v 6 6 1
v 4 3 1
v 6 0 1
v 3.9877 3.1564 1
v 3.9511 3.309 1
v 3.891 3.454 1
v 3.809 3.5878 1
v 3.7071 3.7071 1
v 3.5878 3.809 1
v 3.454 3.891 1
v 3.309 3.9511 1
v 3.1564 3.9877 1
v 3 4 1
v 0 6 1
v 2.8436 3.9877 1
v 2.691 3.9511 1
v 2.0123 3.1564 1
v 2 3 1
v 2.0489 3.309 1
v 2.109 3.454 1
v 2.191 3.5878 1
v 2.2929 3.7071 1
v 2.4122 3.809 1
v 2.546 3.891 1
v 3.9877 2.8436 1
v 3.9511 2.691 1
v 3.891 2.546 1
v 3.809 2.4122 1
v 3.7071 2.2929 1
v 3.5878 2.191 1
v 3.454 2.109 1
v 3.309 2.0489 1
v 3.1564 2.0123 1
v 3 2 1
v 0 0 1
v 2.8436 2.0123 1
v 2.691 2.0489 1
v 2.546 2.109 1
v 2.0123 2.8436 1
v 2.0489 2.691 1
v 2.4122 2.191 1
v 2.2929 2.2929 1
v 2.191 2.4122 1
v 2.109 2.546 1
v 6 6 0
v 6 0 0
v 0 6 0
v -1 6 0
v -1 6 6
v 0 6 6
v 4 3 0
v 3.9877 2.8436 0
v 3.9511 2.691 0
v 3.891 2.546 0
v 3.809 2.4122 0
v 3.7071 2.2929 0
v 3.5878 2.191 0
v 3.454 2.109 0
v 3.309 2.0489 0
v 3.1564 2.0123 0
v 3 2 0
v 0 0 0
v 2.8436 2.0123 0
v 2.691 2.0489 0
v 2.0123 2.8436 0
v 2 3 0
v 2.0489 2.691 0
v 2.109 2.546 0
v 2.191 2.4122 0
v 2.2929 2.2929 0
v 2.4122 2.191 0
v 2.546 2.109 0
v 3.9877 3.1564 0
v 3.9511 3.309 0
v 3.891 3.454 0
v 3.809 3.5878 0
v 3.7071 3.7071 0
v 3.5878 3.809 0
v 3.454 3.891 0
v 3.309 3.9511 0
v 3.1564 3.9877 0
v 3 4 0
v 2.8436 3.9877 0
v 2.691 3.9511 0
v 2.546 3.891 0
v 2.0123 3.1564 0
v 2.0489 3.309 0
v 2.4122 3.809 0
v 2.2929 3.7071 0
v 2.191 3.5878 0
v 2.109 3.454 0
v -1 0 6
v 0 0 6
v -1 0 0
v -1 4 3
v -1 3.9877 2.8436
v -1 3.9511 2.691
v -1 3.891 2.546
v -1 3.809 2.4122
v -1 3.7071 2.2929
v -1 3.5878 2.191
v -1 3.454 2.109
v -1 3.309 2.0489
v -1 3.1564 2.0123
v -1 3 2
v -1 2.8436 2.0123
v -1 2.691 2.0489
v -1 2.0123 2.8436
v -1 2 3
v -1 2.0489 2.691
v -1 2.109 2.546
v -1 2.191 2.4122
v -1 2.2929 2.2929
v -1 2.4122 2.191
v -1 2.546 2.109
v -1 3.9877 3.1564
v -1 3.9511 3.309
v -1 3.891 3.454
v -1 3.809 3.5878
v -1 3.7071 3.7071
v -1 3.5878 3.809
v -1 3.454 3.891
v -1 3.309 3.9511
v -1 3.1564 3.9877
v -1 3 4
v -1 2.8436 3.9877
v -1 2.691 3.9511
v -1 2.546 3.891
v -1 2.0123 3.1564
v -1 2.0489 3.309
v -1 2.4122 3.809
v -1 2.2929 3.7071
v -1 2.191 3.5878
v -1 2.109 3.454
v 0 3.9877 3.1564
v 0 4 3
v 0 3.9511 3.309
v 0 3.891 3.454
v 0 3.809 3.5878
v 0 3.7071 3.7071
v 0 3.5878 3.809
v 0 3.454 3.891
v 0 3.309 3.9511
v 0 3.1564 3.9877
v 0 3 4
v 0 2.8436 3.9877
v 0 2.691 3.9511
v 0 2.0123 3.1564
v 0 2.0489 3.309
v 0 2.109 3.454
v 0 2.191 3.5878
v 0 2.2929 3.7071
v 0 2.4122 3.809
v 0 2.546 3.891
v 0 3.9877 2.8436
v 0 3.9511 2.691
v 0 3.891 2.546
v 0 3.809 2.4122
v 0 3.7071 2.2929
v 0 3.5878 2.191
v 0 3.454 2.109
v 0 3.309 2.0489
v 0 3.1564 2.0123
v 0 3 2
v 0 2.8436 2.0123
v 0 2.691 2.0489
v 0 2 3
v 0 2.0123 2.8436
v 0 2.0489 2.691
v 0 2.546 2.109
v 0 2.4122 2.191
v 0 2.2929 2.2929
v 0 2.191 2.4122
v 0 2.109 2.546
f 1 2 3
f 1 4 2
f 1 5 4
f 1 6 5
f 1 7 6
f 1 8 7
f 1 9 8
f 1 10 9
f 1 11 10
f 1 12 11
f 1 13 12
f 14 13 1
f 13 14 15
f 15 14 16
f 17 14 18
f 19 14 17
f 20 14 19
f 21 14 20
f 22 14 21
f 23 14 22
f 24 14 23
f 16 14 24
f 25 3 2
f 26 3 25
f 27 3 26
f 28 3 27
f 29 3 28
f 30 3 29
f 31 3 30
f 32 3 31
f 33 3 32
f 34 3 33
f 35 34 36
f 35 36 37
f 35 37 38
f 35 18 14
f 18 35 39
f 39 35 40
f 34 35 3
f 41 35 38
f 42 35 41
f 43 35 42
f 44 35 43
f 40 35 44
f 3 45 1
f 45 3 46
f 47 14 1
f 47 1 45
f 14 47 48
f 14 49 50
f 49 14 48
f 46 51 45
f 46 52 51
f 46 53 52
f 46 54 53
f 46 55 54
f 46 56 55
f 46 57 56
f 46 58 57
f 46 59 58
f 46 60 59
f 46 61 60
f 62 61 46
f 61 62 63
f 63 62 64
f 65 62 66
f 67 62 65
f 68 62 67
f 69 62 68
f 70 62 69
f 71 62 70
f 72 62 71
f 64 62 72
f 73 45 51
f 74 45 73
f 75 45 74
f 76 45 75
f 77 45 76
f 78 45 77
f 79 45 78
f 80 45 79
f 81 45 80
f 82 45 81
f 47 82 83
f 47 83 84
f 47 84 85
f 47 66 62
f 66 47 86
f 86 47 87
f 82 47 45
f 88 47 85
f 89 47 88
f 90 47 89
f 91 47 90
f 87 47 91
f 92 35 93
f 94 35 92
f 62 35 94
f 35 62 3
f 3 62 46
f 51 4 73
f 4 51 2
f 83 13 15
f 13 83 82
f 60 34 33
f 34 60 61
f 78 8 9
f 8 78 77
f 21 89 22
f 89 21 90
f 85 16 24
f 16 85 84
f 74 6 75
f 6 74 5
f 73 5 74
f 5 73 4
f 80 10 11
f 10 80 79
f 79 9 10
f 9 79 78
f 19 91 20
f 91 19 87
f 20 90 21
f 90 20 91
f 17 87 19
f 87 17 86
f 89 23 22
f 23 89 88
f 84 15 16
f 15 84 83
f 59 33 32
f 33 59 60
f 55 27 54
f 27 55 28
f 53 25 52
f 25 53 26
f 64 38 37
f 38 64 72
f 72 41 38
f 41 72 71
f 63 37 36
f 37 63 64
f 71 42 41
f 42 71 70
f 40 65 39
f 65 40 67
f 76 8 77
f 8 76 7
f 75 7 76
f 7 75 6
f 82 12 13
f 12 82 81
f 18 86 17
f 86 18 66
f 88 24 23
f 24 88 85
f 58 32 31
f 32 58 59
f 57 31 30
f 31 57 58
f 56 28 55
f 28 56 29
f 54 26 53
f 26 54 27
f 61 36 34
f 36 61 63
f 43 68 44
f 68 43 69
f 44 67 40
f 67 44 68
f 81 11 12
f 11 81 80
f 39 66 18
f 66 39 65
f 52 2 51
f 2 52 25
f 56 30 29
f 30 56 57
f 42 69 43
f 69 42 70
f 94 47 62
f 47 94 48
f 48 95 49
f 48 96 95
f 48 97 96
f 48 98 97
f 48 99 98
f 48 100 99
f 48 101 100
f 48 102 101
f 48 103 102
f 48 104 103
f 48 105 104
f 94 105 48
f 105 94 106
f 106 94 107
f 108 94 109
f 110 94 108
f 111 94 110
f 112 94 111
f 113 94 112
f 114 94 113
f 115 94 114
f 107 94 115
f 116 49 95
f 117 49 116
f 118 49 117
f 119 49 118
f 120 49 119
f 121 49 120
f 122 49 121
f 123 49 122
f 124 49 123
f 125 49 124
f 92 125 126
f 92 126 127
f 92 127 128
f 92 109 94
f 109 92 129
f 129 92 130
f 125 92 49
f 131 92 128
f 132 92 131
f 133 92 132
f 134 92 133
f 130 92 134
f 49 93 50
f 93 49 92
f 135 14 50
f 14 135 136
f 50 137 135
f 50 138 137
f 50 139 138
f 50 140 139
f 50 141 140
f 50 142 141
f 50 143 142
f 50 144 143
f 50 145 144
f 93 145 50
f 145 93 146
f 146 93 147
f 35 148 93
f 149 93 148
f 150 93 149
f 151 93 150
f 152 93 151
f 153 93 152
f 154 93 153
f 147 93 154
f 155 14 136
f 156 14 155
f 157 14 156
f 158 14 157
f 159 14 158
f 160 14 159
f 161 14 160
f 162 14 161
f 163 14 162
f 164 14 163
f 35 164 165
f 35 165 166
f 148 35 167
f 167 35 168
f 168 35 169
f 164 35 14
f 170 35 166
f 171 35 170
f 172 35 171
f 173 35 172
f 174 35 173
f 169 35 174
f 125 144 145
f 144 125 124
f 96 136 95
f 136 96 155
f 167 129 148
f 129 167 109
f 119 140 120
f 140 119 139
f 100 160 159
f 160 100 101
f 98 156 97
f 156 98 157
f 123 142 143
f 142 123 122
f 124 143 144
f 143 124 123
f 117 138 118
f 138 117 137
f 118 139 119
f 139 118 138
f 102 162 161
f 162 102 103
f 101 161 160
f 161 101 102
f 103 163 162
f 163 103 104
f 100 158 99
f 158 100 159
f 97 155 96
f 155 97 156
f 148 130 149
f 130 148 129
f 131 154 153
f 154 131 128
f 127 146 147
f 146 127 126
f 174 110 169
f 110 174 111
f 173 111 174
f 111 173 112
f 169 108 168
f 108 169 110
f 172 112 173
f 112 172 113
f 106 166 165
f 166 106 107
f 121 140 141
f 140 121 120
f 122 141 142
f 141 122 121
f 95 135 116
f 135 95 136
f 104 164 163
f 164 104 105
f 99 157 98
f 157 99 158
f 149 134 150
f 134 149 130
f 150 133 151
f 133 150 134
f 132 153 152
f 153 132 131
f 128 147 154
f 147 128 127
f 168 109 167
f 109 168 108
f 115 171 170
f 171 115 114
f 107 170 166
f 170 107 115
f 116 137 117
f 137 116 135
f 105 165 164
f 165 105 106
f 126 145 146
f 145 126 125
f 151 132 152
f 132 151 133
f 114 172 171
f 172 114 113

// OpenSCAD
//facets    
$fn=40;
//cube

module pwh(length, width, thick) {
    difference(){
        cube([length, width, thick]);
        //cylinder for hole
        translate([length/2, width/2, 0]) cylinder(r1=1,r2=1,3);
        }
}

pwh(6,6,1); //plate with hole
rotate(a=90, v=[0,-1,0]) pwh(6,6,1); //plate with hole
